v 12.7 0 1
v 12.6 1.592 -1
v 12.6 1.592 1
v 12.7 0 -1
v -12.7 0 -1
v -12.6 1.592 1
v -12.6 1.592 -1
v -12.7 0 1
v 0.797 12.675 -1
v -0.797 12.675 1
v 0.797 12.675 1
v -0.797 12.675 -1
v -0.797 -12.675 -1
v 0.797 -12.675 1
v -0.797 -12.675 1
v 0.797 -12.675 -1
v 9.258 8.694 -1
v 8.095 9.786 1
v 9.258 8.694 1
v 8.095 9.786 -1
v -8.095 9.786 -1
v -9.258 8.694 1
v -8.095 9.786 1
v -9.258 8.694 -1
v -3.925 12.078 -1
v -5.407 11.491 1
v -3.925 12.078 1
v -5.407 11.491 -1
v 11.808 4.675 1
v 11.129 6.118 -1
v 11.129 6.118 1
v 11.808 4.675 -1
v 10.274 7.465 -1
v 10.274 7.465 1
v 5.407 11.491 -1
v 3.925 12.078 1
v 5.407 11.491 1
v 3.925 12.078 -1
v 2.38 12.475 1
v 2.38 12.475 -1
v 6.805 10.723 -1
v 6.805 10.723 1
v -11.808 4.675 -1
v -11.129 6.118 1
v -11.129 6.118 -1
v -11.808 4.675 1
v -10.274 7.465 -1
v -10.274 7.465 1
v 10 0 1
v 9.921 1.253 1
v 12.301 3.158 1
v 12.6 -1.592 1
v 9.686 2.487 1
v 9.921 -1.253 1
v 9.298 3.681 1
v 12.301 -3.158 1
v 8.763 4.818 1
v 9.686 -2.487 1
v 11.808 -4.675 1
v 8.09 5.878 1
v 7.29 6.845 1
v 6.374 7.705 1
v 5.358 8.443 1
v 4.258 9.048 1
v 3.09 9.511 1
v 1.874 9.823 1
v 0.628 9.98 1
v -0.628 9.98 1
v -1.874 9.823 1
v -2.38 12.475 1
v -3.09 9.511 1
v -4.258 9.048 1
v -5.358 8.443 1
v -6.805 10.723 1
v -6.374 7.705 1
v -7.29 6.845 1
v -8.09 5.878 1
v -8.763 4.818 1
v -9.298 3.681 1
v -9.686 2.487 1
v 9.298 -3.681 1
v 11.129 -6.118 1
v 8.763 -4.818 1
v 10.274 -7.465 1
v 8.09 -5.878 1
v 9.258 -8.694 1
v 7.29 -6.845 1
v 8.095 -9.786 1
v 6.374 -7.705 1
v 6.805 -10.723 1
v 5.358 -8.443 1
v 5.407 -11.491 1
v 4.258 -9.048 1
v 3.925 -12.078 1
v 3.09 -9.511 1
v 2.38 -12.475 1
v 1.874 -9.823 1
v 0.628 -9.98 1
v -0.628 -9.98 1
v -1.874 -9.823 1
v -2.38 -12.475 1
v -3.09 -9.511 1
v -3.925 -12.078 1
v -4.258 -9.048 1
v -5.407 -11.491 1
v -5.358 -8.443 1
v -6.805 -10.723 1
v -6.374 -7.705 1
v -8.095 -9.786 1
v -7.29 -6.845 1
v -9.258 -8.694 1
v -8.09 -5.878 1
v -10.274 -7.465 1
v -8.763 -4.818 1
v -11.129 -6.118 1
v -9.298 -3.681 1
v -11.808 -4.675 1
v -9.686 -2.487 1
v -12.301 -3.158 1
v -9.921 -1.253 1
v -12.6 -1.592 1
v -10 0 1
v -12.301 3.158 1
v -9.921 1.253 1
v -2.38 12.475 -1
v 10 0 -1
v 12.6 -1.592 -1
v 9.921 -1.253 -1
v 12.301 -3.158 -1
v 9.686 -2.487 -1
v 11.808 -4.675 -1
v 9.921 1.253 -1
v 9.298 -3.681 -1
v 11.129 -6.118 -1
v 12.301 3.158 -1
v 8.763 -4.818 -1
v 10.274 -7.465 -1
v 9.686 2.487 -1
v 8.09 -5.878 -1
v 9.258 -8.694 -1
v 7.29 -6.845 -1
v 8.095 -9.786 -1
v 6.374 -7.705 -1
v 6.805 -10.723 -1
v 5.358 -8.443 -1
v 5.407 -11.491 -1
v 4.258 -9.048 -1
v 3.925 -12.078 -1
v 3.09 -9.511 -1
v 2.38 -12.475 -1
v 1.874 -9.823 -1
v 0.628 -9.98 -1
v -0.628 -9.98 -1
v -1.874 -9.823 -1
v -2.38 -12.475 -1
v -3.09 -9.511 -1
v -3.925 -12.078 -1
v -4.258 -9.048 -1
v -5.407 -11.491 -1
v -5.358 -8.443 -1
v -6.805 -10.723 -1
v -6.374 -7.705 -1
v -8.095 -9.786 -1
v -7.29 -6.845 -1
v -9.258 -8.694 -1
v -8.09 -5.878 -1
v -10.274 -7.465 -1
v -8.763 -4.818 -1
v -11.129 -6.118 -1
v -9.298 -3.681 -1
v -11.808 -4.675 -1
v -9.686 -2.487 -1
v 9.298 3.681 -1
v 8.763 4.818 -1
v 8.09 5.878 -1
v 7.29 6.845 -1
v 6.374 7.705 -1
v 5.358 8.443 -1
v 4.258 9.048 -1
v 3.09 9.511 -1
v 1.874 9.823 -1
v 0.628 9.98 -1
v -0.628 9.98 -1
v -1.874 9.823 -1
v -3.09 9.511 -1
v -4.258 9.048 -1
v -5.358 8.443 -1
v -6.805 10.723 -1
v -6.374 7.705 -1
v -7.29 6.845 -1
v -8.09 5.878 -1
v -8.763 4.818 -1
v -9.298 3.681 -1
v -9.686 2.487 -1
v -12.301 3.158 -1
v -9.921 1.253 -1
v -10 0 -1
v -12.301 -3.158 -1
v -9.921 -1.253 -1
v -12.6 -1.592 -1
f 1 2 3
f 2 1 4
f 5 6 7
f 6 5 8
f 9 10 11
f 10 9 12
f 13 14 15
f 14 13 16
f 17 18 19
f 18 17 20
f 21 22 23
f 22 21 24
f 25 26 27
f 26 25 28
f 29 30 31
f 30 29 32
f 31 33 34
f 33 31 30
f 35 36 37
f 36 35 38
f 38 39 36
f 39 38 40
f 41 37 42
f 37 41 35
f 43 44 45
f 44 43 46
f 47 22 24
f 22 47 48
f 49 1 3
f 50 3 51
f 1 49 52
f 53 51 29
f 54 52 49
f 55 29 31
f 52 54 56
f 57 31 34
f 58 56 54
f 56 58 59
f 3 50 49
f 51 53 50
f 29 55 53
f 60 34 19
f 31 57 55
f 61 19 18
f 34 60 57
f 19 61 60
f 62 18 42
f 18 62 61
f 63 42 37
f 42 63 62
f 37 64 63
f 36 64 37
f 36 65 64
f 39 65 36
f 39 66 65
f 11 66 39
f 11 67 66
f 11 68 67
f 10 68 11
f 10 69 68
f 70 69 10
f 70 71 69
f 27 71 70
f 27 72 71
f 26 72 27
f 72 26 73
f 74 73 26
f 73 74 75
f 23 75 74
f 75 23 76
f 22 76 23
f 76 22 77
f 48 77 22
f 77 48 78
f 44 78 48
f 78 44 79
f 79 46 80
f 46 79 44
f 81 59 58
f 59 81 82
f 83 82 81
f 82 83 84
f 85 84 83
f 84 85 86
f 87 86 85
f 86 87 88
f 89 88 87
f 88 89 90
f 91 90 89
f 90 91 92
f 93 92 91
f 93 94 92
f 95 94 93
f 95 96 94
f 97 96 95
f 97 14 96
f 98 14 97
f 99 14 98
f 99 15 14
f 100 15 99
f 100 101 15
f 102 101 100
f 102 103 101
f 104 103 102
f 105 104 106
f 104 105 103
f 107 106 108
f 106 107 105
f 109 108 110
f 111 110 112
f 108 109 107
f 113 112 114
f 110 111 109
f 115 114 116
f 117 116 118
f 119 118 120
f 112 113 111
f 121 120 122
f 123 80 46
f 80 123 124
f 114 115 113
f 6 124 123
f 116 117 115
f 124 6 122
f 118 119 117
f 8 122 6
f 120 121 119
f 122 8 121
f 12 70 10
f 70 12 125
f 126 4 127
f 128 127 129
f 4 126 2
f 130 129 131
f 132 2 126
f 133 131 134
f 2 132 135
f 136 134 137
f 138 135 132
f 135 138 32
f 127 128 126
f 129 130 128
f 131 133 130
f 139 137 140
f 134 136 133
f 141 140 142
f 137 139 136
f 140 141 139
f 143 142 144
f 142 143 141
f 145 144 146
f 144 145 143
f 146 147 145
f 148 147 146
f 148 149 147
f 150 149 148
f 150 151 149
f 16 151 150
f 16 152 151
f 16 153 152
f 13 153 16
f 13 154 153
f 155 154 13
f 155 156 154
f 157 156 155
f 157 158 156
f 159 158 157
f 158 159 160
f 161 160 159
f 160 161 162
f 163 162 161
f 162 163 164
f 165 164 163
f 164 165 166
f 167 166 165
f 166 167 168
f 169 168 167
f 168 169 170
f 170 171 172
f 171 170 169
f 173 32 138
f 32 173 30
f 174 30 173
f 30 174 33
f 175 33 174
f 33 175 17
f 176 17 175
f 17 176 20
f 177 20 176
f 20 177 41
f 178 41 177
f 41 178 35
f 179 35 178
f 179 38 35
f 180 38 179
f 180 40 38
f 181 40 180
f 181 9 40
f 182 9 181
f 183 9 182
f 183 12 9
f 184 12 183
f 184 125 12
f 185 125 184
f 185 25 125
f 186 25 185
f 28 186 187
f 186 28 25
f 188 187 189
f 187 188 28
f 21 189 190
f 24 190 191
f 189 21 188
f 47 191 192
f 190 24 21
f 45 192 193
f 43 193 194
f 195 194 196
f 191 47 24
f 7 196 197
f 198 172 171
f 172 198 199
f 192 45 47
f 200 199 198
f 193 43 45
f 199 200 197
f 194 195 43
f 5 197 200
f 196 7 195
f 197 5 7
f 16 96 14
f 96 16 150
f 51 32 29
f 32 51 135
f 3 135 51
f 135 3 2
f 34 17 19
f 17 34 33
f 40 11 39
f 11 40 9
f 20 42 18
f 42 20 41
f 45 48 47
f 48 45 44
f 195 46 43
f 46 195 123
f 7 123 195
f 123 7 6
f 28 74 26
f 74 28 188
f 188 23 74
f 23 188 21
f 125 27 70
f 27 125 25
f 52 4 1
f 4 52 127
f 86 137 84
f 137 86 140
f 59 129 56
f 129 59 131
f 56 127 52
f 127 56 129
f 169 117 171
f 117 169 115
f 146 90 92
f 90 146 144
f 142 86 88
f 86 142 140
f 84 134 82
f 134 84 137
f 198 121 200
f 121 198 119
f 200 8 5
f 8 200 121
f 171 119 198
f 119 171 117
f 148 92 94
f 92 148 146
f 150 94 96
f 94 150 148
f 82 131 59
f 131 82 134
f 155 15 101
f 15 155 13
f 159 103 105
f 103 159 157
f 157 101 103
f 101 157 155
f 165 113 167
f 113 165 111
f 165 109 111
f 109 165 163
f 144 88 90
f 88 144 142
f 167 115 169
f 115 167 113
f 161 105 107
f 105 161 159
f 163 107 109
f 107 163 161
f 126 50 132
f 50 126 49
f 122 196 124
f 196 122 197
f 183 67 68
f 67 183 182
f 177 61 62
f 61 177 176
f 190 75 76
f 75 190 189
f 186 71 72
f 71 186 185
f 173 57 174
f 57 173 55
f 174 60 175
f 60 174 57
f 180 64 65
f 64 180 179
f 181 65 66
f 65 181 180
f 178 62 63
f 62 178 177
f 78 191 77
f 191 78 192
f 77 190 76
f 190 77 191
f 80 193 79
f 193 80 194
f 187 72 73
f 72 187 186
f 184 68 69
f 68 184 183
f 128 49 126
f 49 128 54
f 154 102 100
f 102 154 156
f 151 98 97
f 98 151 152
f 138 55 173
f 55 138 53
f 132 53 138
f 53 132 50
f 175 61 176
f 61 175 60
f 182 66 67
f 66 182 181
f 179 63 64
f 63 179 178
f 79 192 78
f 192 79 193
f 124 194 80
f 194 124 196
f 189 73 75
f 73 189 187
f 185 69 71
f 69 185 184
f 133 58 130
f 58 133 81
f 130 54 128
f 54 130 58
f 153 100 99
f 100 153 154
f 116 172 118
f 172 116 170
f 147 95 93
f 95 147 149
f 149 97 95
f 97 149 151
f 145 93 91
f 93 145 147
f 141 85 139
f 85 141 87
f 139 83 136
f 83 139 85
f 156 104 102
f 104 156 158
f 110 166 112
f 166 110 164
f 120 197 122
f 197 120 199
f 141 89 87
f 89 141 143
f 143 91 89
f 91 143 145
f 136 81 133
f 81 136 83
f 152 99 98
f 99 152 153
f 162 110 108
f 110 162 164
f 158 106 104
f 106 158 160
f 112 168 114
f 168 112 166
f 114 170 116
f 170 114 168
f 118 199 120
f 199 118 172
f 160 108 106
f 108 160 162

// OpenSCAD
$fn = 50;


difference() {
	union() {
		translate(v = [0, 0, -1.0000000000]) {
			rotate(a = [0, 0, 0]) {
				cylinder(h = 2, r = 12.7000000000);
			}
		}
	}
	union() {
		translate(v = [0, 0, -1.0000000000]) {
			rotate(a = [0, 0, 0]) {
				cylinder(h = 2, r = 10.0000000000);
			}
		}
	}
}
